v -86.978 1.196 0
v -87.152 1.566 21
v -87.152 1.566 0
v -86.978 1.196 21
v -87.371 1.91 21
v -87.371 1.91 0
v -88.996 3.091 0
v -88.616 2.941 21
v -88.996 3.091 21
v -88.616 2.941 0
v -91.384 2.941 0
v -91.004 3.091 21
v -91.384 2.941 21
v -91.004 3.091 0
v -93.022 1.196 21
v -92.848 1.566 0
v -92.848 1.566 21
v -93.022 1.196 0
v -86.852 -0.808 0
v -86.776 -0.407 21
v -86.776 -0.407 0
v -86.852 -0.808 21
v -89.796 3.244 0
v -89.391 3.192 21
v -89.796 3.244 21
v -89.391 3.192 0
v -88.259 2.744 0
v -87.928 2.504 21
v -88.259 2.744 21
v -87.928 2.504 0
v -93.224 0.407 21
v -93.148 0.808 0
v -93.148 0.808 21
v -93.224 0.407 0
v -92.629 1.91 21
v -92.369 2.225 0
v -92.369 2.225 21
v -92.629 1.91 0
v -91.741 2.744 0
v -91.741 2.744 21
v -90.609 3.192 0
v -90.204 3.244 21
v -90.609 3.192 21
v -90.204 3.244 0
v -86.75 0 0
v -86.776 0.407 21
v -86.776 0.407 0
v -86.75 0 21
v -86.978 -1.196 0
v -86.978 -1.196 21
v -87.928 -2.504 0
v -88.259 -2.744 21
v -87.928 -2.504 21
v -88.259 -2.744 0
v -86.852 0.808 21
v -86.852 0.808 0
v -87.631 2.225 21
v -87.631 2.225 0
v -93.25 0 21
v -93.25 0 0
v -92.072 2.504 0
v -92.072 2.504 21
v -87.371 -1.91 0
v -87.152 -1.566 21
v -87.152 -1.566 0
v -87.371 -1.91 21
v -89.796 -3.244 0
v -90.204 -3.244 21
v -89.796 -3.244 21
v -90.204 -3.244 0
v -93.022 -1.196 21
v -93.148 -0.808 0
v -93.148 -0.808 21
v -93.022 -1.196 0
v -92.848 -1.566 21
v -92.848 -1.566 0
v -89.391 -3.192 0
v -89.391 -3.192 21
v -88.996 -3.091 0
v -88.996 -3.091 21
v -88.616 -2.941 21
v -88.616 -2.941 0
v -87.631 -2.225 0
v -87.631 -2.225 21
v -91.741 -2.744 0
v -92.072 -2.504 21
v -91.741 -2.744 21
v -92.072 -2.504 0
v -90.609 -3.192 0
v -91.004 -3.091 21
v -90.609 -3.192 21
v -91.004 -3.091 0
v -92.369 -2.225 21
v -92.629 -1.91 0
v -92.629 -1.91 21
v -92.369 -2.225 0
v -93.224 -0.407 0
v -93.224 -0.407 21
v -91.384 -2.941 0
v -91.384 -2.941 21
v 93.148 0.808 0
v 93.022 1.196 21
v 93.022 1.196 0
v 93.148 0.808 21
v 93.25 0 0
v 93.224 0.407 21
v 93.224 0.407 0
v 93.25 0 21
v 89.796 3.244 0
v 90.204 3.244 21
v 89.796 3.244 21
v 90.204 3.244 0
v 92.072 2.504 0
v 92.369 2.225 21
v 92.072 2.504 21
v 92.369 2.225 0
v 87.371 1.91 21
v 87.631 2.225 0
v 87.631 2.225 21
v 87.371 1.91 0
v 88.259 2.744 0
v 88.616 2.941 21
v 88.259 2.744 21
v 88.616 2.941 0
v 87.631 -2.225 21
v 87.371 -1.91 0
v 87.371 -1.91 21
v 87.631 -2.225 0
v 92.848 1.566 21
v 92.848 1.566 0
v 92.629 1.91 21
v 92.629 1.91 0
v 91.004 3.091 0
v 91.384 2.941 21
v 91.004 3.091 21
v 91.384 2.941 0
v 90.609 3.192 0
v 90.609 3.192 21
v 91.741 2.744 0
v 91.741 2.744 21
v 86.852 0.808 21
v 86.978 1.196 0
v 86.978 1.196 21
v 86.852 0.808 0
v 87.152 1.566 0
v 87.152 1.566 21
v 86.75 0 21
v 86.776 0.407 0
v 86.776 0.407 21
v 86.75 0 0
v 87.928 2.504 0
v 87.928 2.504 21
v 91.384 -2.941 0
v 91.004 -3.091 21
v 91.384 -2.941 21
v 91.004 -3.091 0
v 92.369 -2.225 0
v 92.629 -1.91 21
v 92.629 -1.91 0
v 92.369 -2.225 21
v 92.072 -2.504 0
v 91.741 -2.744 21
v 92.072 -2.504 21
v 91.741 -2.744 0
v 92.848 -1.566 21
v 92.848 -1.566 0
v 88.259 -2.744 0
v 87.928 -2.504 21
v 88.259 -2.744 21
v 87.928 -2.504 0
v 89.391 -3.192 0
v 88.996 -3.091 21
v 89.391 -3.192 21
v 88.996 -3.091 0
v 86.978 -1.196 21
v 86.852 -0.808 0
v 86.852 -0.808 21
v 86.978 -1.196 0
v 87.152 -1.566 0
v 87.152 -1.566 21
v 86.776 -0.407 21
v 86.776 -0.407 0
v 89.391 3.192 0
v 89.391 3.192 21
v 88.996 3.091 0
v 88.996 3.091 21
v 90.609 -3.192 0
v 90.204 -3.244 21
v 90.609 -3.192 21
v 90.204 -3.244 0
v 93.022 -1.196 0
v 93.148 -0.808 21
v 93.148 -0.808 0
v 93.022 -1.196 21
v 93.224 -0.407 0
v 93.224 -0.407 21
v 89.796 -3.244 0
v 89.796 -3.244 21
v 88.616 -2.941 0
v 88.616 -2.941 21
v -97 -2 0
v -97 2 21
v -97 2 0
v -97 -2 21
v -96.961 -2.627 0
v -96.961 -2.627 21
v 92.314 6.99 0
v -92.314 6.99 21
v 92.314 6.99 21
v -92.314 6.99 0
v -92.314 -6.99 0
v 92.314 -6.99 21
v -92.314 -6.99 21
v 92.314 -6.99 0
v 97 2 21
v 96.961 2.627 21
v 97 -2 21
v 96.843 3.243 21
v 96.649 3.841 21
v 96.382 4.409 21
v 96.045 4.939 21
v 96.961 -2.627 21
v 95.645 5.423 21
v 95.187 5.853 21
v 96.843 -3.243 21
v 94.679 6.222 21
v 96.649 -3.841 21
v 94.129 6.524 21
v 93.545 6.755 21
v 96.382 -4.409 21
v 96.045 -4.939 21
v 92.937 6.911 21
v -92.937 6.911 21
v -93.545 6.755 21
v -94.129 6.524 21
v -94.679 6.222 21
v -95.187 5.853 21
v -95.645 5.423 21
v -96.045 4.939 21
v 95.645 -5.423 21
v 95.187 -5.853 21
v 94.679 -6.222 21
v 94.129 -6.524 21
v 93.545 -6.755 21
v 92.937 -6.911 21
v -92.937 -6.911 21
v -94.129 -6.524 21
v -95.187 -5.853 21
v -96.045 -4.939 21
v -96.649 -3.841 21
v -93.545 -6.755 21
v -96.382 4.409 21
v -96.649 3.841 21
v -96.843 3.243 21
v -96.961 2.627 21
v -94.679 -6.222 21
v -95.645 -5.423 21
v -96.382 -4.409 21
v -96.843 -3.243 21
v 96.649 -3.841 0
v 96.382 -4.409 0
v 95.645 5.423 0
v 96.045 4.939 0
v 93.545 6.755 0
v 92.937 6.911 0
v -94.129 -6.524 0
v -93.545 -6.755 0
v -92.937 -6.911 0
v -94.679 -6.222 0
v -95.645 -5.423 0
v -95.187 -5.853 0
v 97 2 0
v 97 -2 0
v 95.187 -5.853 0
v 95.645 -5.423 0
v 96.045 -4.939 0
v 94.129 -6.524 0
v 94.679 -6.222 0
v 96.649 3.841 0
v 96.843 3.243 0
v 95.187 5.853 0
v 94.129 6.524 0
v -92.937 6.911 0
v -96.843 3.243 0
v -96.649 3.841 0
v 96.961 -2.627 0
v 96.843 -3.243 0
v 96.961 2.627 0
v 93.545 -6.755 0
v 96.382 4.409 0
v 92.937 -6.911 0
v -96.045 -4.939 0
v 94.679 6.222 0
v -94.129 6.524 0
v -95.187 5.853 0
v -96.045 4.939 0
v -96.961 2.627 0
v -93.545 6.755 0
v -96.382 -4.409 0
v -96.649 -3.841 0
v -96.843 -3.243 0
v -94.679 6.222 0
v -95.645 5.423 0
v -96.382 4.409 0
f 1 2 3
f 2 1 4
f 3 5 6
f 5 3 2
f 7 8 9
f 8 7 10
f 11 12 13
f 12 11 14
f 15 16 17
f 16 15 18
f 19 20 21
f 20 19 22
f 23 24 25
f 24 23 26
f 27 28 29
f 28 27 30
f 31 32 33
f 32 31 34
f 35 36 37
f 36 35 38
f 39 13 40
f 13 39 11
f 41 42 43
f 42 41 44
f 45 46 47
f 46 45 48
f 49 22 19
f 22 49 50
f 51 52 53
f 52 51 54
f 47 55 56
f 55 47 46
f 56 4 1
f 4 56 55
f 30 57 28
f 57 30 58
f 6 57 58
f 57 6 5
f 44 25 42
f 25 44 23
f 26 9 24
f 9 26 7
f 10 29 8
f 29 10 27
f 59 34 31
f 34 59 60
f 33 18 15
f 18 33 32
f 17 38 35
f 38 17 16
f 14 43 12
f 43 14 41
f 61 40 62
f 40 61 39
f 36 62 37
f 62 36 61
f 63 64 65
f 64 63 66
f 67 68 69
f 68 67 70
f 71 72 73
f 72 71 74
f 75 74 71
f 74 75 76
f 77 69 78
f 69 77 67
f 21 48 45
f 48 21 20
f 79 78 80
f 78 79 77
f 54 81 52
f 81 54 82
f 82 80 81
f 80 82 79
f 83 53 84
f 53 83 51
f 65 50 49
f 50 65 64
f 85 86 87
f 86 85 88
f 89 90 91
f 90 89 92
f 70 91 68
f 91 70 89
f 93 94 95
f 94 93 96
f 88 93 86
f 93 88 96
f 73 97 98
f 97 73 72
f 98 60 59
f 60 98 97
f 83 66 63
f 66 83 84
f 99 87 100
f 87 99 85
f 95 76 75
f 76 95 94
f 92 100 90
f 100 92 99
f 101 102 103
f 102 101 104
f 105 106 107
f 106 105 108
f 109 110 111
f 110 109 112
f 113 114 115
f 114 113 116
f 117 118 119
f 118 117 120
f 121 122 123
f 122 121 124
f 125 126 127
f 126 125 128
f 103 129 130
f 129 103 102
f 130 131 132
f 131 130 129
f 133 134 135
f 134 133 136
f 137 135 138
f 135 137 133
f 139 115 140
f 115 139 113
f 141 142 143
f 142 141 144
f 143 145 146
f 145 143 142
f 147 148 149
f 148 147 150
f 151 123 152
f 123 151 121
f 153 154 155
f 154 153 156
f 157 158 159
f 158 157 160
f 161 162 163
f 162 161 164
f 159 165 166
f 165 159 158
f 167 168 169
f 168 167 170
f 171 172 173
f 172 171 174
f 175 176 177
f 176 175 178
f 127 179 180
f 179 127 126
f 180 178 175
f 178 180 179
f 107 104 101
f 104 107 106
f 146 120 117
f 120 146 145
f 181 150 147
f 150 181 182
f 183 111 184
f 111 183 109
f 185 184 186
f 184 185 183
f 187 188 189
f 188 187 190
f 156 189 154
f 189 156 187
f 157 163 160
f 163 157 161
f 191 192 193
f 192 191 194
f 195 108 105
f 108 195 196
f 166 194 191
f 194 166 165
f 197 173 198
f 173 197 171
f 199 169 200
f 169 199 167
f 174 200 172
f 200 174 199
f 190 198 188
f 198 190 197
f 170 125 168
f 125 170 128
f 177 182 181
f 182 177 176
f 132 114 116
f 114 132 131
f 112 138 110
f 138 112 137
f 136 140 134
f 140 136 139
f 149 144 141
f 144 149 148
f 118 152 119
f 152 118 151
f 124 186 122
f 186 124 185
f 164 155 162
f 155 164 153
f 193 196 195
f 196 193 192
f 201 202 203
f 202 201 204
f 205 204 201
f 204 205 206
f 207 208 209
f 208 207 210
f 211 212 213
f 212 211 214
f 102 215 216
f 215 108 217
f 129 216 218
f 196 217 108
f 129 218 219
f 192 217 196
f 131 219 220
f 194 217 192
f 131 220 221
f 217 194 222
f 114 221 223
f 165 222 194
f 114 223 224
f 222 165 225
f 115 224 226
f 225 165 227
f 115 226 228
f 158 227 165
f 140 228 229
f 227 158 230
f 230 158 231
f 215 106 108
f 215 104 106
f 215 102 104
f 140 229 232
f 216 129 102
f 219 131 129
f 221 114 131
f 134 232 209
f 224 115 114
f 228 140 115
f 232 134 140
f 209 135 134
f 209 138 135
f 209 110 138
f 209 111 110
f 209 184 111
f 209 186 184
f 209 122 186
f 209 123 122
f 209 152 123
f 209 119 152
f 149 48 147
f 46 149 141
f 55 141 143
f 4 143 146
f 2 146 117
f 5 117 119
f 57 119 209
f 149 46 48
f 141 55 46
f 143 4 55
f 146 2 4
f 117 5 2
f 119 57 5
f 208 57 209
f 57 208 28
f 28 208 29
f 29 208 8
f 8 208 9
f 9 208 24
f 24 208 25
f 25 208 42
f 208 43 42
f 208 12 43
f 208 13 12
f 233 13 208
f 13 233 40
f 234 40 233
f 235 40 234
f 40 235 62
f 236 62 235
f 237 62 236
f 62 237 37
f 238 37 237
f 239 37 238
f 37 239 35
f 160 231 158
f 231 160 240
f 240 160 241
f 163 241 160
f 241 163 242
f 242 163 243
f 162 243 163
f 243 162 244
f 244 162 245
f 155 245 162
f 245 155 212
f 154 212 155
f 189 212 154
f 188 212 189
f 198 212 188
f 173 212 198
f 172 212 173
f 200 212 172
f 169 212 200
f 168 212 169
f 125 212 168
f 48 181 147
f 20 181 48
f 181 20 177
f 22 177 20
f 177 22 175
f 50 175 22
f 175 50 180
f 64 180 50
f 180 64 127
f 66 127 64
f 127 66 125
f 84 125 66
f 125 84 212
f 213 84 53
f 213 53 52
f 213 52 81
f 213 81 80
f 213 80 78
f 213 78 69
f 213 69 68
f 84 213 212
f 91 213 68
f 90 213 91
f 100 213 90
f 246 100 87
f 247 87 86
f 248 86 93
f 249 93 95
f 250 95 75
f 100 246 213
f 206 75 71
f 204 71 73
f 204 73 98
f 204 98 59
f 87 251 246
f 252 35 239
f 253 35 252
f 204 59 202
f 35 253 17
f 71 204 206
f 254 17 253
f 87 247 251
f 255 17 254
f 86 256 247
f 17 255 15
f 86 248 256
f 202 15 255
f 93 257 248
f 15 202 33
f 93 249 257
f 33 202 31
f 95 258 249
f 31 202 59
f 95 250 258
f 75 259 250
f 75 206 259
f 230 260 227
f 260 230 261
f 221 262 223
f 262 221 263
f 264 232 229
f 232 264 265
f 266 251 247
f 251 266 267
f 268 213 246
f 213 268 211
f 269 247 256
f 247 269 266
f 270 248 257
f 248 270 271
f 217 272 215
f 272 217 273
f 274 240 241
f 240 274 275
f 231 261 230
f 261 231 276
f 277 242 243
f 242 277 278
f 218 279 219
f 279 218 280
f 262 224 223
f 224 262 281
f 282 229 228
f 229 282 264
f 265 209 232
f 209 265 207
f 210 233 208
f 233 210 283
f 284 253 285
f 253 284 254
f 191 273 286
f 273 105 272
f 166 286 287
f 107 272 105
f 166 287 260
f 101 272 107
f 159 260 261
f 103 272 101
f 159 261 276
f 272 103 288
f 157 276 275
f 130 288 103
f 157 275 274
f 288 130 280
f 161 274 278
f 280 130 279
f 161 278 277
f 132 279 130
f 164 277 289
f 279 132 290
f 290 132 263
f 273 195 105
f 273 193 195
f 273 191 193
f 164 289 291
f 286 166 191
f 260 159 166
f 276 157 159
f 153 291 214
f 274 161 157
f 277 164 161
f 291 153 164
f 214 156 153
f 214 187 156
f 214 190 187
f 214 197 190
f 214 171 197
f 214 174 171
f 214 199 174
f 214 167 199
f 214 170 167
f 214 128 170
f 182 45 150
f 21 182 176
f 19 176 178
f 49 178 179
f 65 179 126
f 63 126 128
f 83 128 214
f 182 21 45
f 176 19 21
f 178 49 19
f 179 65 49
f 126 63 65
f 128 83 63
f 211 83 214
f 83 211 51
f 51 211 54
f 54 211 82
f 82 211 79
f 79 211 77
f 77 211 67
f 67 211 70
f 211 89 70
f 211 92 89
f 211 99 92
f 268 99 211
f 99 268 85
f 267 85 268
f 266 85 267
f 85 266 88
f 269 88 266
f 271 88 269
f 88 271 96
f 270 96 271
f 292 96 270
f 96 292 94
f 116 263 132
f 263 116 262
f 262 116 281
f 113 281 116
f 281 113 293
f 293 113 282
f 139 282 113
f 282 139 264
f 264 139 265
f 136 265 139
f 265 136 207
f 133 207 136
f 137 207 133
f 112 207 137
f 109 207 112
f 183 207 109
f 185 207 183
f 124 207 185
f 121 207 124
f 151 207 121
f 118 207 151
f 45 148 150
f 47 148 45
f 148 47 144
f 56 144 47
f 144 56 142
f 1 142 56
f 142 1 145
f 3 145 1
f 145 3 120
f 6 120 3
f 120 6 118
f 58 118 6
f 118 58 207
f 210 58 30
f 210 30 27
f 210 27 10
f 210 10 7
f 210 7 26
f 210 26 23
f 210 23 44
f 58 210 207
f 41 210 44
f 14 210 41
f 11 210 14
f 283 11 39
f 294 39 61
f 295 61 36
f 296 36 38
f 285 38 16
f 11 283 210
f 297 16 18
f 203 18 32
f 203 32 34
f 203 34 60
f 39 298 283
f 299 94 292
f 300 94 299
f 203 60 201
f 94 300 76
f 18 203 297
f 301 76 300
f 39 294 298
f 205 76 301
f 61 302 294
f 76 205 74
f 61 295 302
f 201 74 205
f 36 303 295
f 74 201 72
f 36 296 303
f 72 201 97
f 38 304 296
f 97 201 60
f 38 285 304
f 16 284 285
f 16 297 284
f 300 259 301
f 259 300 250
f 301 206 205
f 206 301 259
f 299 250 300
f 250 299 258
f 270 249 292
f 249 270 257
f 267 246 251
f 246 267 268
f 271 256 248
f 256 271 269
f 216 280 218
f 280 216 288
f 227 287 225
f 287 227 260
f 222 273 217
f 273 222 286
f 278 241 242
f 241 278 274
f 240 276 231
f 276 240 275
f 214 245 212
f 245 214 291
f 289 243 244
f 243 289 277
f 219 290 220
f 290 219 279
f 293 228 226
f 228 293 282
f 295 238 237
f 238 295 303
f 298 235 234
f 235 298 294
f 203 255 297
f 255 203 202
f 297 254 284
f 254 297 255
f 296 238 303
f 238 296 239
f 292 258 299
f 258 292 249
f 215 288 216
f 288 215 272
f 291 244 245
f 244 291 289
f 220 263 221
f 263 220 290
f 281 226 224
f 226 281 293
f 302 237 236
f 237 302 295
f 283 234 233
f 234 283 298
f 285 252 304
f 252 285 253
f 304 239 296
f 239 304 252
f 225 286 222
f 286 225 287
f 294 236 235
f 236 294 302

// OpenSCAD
$fn = 50;


difference() {
	union() {
		hull() {
			translate(v = [-92.0000000000, 2.0000000000, 0]) {
				cylinder(h = 21, r = 5);
			}
			translate(v = [92.0000000000, 2.0000000000, 0]) {
				cylinder(h = 21, r = 5);
			}
			translate(v = [-92.0000000000, -2.0000000000, 0]) {
				cylinder(h = 21, r = 5);
			}
			translate(v = [92.0000000000, -2.0000000000, 0]) {
				cylinder(h = 21, r = 5);
			}
		}
	}
	union() {
		translate(v = [-90.0000000000, 0.0000000000, 0]) {
			cylinder(h = 21, r = 3.2500000000);
		}
		translate(v = [90.0000000000, 0.0000000000, 0]) {
			cylinder(h = 21, r = 3.2500000000);
		}
		translate(v = [-90.0000000000, 0.0000000000, 0]) {
			cylinder(h = 21, r = 1.8000000000);
		}
		translate(v = [90.0000000000, 0.0000000000, 0]) {
			cylinder(h = 21, r = 1.8000000000);
		}
		translate(v = [-90.0000000000, 0.0000000000, 0]) {
			cylinder(h = 21, r = 1.8000000000);
		}
		translate(v = [90.0000000000, 0.0000000000, 0]) {
			cylinder(h = 21, r = 1.8000000000);
		}
		translate(v = [-90.0000000000, 0.0000000000, 0]) {
			cylinder(h = 21, r = 1.8000000000);
		}
		translate(v = [90.0000000000, 0.0000000000, 0]) {
			cylinder(h = 21, r = 1.8000000000);
		}
	}
}
